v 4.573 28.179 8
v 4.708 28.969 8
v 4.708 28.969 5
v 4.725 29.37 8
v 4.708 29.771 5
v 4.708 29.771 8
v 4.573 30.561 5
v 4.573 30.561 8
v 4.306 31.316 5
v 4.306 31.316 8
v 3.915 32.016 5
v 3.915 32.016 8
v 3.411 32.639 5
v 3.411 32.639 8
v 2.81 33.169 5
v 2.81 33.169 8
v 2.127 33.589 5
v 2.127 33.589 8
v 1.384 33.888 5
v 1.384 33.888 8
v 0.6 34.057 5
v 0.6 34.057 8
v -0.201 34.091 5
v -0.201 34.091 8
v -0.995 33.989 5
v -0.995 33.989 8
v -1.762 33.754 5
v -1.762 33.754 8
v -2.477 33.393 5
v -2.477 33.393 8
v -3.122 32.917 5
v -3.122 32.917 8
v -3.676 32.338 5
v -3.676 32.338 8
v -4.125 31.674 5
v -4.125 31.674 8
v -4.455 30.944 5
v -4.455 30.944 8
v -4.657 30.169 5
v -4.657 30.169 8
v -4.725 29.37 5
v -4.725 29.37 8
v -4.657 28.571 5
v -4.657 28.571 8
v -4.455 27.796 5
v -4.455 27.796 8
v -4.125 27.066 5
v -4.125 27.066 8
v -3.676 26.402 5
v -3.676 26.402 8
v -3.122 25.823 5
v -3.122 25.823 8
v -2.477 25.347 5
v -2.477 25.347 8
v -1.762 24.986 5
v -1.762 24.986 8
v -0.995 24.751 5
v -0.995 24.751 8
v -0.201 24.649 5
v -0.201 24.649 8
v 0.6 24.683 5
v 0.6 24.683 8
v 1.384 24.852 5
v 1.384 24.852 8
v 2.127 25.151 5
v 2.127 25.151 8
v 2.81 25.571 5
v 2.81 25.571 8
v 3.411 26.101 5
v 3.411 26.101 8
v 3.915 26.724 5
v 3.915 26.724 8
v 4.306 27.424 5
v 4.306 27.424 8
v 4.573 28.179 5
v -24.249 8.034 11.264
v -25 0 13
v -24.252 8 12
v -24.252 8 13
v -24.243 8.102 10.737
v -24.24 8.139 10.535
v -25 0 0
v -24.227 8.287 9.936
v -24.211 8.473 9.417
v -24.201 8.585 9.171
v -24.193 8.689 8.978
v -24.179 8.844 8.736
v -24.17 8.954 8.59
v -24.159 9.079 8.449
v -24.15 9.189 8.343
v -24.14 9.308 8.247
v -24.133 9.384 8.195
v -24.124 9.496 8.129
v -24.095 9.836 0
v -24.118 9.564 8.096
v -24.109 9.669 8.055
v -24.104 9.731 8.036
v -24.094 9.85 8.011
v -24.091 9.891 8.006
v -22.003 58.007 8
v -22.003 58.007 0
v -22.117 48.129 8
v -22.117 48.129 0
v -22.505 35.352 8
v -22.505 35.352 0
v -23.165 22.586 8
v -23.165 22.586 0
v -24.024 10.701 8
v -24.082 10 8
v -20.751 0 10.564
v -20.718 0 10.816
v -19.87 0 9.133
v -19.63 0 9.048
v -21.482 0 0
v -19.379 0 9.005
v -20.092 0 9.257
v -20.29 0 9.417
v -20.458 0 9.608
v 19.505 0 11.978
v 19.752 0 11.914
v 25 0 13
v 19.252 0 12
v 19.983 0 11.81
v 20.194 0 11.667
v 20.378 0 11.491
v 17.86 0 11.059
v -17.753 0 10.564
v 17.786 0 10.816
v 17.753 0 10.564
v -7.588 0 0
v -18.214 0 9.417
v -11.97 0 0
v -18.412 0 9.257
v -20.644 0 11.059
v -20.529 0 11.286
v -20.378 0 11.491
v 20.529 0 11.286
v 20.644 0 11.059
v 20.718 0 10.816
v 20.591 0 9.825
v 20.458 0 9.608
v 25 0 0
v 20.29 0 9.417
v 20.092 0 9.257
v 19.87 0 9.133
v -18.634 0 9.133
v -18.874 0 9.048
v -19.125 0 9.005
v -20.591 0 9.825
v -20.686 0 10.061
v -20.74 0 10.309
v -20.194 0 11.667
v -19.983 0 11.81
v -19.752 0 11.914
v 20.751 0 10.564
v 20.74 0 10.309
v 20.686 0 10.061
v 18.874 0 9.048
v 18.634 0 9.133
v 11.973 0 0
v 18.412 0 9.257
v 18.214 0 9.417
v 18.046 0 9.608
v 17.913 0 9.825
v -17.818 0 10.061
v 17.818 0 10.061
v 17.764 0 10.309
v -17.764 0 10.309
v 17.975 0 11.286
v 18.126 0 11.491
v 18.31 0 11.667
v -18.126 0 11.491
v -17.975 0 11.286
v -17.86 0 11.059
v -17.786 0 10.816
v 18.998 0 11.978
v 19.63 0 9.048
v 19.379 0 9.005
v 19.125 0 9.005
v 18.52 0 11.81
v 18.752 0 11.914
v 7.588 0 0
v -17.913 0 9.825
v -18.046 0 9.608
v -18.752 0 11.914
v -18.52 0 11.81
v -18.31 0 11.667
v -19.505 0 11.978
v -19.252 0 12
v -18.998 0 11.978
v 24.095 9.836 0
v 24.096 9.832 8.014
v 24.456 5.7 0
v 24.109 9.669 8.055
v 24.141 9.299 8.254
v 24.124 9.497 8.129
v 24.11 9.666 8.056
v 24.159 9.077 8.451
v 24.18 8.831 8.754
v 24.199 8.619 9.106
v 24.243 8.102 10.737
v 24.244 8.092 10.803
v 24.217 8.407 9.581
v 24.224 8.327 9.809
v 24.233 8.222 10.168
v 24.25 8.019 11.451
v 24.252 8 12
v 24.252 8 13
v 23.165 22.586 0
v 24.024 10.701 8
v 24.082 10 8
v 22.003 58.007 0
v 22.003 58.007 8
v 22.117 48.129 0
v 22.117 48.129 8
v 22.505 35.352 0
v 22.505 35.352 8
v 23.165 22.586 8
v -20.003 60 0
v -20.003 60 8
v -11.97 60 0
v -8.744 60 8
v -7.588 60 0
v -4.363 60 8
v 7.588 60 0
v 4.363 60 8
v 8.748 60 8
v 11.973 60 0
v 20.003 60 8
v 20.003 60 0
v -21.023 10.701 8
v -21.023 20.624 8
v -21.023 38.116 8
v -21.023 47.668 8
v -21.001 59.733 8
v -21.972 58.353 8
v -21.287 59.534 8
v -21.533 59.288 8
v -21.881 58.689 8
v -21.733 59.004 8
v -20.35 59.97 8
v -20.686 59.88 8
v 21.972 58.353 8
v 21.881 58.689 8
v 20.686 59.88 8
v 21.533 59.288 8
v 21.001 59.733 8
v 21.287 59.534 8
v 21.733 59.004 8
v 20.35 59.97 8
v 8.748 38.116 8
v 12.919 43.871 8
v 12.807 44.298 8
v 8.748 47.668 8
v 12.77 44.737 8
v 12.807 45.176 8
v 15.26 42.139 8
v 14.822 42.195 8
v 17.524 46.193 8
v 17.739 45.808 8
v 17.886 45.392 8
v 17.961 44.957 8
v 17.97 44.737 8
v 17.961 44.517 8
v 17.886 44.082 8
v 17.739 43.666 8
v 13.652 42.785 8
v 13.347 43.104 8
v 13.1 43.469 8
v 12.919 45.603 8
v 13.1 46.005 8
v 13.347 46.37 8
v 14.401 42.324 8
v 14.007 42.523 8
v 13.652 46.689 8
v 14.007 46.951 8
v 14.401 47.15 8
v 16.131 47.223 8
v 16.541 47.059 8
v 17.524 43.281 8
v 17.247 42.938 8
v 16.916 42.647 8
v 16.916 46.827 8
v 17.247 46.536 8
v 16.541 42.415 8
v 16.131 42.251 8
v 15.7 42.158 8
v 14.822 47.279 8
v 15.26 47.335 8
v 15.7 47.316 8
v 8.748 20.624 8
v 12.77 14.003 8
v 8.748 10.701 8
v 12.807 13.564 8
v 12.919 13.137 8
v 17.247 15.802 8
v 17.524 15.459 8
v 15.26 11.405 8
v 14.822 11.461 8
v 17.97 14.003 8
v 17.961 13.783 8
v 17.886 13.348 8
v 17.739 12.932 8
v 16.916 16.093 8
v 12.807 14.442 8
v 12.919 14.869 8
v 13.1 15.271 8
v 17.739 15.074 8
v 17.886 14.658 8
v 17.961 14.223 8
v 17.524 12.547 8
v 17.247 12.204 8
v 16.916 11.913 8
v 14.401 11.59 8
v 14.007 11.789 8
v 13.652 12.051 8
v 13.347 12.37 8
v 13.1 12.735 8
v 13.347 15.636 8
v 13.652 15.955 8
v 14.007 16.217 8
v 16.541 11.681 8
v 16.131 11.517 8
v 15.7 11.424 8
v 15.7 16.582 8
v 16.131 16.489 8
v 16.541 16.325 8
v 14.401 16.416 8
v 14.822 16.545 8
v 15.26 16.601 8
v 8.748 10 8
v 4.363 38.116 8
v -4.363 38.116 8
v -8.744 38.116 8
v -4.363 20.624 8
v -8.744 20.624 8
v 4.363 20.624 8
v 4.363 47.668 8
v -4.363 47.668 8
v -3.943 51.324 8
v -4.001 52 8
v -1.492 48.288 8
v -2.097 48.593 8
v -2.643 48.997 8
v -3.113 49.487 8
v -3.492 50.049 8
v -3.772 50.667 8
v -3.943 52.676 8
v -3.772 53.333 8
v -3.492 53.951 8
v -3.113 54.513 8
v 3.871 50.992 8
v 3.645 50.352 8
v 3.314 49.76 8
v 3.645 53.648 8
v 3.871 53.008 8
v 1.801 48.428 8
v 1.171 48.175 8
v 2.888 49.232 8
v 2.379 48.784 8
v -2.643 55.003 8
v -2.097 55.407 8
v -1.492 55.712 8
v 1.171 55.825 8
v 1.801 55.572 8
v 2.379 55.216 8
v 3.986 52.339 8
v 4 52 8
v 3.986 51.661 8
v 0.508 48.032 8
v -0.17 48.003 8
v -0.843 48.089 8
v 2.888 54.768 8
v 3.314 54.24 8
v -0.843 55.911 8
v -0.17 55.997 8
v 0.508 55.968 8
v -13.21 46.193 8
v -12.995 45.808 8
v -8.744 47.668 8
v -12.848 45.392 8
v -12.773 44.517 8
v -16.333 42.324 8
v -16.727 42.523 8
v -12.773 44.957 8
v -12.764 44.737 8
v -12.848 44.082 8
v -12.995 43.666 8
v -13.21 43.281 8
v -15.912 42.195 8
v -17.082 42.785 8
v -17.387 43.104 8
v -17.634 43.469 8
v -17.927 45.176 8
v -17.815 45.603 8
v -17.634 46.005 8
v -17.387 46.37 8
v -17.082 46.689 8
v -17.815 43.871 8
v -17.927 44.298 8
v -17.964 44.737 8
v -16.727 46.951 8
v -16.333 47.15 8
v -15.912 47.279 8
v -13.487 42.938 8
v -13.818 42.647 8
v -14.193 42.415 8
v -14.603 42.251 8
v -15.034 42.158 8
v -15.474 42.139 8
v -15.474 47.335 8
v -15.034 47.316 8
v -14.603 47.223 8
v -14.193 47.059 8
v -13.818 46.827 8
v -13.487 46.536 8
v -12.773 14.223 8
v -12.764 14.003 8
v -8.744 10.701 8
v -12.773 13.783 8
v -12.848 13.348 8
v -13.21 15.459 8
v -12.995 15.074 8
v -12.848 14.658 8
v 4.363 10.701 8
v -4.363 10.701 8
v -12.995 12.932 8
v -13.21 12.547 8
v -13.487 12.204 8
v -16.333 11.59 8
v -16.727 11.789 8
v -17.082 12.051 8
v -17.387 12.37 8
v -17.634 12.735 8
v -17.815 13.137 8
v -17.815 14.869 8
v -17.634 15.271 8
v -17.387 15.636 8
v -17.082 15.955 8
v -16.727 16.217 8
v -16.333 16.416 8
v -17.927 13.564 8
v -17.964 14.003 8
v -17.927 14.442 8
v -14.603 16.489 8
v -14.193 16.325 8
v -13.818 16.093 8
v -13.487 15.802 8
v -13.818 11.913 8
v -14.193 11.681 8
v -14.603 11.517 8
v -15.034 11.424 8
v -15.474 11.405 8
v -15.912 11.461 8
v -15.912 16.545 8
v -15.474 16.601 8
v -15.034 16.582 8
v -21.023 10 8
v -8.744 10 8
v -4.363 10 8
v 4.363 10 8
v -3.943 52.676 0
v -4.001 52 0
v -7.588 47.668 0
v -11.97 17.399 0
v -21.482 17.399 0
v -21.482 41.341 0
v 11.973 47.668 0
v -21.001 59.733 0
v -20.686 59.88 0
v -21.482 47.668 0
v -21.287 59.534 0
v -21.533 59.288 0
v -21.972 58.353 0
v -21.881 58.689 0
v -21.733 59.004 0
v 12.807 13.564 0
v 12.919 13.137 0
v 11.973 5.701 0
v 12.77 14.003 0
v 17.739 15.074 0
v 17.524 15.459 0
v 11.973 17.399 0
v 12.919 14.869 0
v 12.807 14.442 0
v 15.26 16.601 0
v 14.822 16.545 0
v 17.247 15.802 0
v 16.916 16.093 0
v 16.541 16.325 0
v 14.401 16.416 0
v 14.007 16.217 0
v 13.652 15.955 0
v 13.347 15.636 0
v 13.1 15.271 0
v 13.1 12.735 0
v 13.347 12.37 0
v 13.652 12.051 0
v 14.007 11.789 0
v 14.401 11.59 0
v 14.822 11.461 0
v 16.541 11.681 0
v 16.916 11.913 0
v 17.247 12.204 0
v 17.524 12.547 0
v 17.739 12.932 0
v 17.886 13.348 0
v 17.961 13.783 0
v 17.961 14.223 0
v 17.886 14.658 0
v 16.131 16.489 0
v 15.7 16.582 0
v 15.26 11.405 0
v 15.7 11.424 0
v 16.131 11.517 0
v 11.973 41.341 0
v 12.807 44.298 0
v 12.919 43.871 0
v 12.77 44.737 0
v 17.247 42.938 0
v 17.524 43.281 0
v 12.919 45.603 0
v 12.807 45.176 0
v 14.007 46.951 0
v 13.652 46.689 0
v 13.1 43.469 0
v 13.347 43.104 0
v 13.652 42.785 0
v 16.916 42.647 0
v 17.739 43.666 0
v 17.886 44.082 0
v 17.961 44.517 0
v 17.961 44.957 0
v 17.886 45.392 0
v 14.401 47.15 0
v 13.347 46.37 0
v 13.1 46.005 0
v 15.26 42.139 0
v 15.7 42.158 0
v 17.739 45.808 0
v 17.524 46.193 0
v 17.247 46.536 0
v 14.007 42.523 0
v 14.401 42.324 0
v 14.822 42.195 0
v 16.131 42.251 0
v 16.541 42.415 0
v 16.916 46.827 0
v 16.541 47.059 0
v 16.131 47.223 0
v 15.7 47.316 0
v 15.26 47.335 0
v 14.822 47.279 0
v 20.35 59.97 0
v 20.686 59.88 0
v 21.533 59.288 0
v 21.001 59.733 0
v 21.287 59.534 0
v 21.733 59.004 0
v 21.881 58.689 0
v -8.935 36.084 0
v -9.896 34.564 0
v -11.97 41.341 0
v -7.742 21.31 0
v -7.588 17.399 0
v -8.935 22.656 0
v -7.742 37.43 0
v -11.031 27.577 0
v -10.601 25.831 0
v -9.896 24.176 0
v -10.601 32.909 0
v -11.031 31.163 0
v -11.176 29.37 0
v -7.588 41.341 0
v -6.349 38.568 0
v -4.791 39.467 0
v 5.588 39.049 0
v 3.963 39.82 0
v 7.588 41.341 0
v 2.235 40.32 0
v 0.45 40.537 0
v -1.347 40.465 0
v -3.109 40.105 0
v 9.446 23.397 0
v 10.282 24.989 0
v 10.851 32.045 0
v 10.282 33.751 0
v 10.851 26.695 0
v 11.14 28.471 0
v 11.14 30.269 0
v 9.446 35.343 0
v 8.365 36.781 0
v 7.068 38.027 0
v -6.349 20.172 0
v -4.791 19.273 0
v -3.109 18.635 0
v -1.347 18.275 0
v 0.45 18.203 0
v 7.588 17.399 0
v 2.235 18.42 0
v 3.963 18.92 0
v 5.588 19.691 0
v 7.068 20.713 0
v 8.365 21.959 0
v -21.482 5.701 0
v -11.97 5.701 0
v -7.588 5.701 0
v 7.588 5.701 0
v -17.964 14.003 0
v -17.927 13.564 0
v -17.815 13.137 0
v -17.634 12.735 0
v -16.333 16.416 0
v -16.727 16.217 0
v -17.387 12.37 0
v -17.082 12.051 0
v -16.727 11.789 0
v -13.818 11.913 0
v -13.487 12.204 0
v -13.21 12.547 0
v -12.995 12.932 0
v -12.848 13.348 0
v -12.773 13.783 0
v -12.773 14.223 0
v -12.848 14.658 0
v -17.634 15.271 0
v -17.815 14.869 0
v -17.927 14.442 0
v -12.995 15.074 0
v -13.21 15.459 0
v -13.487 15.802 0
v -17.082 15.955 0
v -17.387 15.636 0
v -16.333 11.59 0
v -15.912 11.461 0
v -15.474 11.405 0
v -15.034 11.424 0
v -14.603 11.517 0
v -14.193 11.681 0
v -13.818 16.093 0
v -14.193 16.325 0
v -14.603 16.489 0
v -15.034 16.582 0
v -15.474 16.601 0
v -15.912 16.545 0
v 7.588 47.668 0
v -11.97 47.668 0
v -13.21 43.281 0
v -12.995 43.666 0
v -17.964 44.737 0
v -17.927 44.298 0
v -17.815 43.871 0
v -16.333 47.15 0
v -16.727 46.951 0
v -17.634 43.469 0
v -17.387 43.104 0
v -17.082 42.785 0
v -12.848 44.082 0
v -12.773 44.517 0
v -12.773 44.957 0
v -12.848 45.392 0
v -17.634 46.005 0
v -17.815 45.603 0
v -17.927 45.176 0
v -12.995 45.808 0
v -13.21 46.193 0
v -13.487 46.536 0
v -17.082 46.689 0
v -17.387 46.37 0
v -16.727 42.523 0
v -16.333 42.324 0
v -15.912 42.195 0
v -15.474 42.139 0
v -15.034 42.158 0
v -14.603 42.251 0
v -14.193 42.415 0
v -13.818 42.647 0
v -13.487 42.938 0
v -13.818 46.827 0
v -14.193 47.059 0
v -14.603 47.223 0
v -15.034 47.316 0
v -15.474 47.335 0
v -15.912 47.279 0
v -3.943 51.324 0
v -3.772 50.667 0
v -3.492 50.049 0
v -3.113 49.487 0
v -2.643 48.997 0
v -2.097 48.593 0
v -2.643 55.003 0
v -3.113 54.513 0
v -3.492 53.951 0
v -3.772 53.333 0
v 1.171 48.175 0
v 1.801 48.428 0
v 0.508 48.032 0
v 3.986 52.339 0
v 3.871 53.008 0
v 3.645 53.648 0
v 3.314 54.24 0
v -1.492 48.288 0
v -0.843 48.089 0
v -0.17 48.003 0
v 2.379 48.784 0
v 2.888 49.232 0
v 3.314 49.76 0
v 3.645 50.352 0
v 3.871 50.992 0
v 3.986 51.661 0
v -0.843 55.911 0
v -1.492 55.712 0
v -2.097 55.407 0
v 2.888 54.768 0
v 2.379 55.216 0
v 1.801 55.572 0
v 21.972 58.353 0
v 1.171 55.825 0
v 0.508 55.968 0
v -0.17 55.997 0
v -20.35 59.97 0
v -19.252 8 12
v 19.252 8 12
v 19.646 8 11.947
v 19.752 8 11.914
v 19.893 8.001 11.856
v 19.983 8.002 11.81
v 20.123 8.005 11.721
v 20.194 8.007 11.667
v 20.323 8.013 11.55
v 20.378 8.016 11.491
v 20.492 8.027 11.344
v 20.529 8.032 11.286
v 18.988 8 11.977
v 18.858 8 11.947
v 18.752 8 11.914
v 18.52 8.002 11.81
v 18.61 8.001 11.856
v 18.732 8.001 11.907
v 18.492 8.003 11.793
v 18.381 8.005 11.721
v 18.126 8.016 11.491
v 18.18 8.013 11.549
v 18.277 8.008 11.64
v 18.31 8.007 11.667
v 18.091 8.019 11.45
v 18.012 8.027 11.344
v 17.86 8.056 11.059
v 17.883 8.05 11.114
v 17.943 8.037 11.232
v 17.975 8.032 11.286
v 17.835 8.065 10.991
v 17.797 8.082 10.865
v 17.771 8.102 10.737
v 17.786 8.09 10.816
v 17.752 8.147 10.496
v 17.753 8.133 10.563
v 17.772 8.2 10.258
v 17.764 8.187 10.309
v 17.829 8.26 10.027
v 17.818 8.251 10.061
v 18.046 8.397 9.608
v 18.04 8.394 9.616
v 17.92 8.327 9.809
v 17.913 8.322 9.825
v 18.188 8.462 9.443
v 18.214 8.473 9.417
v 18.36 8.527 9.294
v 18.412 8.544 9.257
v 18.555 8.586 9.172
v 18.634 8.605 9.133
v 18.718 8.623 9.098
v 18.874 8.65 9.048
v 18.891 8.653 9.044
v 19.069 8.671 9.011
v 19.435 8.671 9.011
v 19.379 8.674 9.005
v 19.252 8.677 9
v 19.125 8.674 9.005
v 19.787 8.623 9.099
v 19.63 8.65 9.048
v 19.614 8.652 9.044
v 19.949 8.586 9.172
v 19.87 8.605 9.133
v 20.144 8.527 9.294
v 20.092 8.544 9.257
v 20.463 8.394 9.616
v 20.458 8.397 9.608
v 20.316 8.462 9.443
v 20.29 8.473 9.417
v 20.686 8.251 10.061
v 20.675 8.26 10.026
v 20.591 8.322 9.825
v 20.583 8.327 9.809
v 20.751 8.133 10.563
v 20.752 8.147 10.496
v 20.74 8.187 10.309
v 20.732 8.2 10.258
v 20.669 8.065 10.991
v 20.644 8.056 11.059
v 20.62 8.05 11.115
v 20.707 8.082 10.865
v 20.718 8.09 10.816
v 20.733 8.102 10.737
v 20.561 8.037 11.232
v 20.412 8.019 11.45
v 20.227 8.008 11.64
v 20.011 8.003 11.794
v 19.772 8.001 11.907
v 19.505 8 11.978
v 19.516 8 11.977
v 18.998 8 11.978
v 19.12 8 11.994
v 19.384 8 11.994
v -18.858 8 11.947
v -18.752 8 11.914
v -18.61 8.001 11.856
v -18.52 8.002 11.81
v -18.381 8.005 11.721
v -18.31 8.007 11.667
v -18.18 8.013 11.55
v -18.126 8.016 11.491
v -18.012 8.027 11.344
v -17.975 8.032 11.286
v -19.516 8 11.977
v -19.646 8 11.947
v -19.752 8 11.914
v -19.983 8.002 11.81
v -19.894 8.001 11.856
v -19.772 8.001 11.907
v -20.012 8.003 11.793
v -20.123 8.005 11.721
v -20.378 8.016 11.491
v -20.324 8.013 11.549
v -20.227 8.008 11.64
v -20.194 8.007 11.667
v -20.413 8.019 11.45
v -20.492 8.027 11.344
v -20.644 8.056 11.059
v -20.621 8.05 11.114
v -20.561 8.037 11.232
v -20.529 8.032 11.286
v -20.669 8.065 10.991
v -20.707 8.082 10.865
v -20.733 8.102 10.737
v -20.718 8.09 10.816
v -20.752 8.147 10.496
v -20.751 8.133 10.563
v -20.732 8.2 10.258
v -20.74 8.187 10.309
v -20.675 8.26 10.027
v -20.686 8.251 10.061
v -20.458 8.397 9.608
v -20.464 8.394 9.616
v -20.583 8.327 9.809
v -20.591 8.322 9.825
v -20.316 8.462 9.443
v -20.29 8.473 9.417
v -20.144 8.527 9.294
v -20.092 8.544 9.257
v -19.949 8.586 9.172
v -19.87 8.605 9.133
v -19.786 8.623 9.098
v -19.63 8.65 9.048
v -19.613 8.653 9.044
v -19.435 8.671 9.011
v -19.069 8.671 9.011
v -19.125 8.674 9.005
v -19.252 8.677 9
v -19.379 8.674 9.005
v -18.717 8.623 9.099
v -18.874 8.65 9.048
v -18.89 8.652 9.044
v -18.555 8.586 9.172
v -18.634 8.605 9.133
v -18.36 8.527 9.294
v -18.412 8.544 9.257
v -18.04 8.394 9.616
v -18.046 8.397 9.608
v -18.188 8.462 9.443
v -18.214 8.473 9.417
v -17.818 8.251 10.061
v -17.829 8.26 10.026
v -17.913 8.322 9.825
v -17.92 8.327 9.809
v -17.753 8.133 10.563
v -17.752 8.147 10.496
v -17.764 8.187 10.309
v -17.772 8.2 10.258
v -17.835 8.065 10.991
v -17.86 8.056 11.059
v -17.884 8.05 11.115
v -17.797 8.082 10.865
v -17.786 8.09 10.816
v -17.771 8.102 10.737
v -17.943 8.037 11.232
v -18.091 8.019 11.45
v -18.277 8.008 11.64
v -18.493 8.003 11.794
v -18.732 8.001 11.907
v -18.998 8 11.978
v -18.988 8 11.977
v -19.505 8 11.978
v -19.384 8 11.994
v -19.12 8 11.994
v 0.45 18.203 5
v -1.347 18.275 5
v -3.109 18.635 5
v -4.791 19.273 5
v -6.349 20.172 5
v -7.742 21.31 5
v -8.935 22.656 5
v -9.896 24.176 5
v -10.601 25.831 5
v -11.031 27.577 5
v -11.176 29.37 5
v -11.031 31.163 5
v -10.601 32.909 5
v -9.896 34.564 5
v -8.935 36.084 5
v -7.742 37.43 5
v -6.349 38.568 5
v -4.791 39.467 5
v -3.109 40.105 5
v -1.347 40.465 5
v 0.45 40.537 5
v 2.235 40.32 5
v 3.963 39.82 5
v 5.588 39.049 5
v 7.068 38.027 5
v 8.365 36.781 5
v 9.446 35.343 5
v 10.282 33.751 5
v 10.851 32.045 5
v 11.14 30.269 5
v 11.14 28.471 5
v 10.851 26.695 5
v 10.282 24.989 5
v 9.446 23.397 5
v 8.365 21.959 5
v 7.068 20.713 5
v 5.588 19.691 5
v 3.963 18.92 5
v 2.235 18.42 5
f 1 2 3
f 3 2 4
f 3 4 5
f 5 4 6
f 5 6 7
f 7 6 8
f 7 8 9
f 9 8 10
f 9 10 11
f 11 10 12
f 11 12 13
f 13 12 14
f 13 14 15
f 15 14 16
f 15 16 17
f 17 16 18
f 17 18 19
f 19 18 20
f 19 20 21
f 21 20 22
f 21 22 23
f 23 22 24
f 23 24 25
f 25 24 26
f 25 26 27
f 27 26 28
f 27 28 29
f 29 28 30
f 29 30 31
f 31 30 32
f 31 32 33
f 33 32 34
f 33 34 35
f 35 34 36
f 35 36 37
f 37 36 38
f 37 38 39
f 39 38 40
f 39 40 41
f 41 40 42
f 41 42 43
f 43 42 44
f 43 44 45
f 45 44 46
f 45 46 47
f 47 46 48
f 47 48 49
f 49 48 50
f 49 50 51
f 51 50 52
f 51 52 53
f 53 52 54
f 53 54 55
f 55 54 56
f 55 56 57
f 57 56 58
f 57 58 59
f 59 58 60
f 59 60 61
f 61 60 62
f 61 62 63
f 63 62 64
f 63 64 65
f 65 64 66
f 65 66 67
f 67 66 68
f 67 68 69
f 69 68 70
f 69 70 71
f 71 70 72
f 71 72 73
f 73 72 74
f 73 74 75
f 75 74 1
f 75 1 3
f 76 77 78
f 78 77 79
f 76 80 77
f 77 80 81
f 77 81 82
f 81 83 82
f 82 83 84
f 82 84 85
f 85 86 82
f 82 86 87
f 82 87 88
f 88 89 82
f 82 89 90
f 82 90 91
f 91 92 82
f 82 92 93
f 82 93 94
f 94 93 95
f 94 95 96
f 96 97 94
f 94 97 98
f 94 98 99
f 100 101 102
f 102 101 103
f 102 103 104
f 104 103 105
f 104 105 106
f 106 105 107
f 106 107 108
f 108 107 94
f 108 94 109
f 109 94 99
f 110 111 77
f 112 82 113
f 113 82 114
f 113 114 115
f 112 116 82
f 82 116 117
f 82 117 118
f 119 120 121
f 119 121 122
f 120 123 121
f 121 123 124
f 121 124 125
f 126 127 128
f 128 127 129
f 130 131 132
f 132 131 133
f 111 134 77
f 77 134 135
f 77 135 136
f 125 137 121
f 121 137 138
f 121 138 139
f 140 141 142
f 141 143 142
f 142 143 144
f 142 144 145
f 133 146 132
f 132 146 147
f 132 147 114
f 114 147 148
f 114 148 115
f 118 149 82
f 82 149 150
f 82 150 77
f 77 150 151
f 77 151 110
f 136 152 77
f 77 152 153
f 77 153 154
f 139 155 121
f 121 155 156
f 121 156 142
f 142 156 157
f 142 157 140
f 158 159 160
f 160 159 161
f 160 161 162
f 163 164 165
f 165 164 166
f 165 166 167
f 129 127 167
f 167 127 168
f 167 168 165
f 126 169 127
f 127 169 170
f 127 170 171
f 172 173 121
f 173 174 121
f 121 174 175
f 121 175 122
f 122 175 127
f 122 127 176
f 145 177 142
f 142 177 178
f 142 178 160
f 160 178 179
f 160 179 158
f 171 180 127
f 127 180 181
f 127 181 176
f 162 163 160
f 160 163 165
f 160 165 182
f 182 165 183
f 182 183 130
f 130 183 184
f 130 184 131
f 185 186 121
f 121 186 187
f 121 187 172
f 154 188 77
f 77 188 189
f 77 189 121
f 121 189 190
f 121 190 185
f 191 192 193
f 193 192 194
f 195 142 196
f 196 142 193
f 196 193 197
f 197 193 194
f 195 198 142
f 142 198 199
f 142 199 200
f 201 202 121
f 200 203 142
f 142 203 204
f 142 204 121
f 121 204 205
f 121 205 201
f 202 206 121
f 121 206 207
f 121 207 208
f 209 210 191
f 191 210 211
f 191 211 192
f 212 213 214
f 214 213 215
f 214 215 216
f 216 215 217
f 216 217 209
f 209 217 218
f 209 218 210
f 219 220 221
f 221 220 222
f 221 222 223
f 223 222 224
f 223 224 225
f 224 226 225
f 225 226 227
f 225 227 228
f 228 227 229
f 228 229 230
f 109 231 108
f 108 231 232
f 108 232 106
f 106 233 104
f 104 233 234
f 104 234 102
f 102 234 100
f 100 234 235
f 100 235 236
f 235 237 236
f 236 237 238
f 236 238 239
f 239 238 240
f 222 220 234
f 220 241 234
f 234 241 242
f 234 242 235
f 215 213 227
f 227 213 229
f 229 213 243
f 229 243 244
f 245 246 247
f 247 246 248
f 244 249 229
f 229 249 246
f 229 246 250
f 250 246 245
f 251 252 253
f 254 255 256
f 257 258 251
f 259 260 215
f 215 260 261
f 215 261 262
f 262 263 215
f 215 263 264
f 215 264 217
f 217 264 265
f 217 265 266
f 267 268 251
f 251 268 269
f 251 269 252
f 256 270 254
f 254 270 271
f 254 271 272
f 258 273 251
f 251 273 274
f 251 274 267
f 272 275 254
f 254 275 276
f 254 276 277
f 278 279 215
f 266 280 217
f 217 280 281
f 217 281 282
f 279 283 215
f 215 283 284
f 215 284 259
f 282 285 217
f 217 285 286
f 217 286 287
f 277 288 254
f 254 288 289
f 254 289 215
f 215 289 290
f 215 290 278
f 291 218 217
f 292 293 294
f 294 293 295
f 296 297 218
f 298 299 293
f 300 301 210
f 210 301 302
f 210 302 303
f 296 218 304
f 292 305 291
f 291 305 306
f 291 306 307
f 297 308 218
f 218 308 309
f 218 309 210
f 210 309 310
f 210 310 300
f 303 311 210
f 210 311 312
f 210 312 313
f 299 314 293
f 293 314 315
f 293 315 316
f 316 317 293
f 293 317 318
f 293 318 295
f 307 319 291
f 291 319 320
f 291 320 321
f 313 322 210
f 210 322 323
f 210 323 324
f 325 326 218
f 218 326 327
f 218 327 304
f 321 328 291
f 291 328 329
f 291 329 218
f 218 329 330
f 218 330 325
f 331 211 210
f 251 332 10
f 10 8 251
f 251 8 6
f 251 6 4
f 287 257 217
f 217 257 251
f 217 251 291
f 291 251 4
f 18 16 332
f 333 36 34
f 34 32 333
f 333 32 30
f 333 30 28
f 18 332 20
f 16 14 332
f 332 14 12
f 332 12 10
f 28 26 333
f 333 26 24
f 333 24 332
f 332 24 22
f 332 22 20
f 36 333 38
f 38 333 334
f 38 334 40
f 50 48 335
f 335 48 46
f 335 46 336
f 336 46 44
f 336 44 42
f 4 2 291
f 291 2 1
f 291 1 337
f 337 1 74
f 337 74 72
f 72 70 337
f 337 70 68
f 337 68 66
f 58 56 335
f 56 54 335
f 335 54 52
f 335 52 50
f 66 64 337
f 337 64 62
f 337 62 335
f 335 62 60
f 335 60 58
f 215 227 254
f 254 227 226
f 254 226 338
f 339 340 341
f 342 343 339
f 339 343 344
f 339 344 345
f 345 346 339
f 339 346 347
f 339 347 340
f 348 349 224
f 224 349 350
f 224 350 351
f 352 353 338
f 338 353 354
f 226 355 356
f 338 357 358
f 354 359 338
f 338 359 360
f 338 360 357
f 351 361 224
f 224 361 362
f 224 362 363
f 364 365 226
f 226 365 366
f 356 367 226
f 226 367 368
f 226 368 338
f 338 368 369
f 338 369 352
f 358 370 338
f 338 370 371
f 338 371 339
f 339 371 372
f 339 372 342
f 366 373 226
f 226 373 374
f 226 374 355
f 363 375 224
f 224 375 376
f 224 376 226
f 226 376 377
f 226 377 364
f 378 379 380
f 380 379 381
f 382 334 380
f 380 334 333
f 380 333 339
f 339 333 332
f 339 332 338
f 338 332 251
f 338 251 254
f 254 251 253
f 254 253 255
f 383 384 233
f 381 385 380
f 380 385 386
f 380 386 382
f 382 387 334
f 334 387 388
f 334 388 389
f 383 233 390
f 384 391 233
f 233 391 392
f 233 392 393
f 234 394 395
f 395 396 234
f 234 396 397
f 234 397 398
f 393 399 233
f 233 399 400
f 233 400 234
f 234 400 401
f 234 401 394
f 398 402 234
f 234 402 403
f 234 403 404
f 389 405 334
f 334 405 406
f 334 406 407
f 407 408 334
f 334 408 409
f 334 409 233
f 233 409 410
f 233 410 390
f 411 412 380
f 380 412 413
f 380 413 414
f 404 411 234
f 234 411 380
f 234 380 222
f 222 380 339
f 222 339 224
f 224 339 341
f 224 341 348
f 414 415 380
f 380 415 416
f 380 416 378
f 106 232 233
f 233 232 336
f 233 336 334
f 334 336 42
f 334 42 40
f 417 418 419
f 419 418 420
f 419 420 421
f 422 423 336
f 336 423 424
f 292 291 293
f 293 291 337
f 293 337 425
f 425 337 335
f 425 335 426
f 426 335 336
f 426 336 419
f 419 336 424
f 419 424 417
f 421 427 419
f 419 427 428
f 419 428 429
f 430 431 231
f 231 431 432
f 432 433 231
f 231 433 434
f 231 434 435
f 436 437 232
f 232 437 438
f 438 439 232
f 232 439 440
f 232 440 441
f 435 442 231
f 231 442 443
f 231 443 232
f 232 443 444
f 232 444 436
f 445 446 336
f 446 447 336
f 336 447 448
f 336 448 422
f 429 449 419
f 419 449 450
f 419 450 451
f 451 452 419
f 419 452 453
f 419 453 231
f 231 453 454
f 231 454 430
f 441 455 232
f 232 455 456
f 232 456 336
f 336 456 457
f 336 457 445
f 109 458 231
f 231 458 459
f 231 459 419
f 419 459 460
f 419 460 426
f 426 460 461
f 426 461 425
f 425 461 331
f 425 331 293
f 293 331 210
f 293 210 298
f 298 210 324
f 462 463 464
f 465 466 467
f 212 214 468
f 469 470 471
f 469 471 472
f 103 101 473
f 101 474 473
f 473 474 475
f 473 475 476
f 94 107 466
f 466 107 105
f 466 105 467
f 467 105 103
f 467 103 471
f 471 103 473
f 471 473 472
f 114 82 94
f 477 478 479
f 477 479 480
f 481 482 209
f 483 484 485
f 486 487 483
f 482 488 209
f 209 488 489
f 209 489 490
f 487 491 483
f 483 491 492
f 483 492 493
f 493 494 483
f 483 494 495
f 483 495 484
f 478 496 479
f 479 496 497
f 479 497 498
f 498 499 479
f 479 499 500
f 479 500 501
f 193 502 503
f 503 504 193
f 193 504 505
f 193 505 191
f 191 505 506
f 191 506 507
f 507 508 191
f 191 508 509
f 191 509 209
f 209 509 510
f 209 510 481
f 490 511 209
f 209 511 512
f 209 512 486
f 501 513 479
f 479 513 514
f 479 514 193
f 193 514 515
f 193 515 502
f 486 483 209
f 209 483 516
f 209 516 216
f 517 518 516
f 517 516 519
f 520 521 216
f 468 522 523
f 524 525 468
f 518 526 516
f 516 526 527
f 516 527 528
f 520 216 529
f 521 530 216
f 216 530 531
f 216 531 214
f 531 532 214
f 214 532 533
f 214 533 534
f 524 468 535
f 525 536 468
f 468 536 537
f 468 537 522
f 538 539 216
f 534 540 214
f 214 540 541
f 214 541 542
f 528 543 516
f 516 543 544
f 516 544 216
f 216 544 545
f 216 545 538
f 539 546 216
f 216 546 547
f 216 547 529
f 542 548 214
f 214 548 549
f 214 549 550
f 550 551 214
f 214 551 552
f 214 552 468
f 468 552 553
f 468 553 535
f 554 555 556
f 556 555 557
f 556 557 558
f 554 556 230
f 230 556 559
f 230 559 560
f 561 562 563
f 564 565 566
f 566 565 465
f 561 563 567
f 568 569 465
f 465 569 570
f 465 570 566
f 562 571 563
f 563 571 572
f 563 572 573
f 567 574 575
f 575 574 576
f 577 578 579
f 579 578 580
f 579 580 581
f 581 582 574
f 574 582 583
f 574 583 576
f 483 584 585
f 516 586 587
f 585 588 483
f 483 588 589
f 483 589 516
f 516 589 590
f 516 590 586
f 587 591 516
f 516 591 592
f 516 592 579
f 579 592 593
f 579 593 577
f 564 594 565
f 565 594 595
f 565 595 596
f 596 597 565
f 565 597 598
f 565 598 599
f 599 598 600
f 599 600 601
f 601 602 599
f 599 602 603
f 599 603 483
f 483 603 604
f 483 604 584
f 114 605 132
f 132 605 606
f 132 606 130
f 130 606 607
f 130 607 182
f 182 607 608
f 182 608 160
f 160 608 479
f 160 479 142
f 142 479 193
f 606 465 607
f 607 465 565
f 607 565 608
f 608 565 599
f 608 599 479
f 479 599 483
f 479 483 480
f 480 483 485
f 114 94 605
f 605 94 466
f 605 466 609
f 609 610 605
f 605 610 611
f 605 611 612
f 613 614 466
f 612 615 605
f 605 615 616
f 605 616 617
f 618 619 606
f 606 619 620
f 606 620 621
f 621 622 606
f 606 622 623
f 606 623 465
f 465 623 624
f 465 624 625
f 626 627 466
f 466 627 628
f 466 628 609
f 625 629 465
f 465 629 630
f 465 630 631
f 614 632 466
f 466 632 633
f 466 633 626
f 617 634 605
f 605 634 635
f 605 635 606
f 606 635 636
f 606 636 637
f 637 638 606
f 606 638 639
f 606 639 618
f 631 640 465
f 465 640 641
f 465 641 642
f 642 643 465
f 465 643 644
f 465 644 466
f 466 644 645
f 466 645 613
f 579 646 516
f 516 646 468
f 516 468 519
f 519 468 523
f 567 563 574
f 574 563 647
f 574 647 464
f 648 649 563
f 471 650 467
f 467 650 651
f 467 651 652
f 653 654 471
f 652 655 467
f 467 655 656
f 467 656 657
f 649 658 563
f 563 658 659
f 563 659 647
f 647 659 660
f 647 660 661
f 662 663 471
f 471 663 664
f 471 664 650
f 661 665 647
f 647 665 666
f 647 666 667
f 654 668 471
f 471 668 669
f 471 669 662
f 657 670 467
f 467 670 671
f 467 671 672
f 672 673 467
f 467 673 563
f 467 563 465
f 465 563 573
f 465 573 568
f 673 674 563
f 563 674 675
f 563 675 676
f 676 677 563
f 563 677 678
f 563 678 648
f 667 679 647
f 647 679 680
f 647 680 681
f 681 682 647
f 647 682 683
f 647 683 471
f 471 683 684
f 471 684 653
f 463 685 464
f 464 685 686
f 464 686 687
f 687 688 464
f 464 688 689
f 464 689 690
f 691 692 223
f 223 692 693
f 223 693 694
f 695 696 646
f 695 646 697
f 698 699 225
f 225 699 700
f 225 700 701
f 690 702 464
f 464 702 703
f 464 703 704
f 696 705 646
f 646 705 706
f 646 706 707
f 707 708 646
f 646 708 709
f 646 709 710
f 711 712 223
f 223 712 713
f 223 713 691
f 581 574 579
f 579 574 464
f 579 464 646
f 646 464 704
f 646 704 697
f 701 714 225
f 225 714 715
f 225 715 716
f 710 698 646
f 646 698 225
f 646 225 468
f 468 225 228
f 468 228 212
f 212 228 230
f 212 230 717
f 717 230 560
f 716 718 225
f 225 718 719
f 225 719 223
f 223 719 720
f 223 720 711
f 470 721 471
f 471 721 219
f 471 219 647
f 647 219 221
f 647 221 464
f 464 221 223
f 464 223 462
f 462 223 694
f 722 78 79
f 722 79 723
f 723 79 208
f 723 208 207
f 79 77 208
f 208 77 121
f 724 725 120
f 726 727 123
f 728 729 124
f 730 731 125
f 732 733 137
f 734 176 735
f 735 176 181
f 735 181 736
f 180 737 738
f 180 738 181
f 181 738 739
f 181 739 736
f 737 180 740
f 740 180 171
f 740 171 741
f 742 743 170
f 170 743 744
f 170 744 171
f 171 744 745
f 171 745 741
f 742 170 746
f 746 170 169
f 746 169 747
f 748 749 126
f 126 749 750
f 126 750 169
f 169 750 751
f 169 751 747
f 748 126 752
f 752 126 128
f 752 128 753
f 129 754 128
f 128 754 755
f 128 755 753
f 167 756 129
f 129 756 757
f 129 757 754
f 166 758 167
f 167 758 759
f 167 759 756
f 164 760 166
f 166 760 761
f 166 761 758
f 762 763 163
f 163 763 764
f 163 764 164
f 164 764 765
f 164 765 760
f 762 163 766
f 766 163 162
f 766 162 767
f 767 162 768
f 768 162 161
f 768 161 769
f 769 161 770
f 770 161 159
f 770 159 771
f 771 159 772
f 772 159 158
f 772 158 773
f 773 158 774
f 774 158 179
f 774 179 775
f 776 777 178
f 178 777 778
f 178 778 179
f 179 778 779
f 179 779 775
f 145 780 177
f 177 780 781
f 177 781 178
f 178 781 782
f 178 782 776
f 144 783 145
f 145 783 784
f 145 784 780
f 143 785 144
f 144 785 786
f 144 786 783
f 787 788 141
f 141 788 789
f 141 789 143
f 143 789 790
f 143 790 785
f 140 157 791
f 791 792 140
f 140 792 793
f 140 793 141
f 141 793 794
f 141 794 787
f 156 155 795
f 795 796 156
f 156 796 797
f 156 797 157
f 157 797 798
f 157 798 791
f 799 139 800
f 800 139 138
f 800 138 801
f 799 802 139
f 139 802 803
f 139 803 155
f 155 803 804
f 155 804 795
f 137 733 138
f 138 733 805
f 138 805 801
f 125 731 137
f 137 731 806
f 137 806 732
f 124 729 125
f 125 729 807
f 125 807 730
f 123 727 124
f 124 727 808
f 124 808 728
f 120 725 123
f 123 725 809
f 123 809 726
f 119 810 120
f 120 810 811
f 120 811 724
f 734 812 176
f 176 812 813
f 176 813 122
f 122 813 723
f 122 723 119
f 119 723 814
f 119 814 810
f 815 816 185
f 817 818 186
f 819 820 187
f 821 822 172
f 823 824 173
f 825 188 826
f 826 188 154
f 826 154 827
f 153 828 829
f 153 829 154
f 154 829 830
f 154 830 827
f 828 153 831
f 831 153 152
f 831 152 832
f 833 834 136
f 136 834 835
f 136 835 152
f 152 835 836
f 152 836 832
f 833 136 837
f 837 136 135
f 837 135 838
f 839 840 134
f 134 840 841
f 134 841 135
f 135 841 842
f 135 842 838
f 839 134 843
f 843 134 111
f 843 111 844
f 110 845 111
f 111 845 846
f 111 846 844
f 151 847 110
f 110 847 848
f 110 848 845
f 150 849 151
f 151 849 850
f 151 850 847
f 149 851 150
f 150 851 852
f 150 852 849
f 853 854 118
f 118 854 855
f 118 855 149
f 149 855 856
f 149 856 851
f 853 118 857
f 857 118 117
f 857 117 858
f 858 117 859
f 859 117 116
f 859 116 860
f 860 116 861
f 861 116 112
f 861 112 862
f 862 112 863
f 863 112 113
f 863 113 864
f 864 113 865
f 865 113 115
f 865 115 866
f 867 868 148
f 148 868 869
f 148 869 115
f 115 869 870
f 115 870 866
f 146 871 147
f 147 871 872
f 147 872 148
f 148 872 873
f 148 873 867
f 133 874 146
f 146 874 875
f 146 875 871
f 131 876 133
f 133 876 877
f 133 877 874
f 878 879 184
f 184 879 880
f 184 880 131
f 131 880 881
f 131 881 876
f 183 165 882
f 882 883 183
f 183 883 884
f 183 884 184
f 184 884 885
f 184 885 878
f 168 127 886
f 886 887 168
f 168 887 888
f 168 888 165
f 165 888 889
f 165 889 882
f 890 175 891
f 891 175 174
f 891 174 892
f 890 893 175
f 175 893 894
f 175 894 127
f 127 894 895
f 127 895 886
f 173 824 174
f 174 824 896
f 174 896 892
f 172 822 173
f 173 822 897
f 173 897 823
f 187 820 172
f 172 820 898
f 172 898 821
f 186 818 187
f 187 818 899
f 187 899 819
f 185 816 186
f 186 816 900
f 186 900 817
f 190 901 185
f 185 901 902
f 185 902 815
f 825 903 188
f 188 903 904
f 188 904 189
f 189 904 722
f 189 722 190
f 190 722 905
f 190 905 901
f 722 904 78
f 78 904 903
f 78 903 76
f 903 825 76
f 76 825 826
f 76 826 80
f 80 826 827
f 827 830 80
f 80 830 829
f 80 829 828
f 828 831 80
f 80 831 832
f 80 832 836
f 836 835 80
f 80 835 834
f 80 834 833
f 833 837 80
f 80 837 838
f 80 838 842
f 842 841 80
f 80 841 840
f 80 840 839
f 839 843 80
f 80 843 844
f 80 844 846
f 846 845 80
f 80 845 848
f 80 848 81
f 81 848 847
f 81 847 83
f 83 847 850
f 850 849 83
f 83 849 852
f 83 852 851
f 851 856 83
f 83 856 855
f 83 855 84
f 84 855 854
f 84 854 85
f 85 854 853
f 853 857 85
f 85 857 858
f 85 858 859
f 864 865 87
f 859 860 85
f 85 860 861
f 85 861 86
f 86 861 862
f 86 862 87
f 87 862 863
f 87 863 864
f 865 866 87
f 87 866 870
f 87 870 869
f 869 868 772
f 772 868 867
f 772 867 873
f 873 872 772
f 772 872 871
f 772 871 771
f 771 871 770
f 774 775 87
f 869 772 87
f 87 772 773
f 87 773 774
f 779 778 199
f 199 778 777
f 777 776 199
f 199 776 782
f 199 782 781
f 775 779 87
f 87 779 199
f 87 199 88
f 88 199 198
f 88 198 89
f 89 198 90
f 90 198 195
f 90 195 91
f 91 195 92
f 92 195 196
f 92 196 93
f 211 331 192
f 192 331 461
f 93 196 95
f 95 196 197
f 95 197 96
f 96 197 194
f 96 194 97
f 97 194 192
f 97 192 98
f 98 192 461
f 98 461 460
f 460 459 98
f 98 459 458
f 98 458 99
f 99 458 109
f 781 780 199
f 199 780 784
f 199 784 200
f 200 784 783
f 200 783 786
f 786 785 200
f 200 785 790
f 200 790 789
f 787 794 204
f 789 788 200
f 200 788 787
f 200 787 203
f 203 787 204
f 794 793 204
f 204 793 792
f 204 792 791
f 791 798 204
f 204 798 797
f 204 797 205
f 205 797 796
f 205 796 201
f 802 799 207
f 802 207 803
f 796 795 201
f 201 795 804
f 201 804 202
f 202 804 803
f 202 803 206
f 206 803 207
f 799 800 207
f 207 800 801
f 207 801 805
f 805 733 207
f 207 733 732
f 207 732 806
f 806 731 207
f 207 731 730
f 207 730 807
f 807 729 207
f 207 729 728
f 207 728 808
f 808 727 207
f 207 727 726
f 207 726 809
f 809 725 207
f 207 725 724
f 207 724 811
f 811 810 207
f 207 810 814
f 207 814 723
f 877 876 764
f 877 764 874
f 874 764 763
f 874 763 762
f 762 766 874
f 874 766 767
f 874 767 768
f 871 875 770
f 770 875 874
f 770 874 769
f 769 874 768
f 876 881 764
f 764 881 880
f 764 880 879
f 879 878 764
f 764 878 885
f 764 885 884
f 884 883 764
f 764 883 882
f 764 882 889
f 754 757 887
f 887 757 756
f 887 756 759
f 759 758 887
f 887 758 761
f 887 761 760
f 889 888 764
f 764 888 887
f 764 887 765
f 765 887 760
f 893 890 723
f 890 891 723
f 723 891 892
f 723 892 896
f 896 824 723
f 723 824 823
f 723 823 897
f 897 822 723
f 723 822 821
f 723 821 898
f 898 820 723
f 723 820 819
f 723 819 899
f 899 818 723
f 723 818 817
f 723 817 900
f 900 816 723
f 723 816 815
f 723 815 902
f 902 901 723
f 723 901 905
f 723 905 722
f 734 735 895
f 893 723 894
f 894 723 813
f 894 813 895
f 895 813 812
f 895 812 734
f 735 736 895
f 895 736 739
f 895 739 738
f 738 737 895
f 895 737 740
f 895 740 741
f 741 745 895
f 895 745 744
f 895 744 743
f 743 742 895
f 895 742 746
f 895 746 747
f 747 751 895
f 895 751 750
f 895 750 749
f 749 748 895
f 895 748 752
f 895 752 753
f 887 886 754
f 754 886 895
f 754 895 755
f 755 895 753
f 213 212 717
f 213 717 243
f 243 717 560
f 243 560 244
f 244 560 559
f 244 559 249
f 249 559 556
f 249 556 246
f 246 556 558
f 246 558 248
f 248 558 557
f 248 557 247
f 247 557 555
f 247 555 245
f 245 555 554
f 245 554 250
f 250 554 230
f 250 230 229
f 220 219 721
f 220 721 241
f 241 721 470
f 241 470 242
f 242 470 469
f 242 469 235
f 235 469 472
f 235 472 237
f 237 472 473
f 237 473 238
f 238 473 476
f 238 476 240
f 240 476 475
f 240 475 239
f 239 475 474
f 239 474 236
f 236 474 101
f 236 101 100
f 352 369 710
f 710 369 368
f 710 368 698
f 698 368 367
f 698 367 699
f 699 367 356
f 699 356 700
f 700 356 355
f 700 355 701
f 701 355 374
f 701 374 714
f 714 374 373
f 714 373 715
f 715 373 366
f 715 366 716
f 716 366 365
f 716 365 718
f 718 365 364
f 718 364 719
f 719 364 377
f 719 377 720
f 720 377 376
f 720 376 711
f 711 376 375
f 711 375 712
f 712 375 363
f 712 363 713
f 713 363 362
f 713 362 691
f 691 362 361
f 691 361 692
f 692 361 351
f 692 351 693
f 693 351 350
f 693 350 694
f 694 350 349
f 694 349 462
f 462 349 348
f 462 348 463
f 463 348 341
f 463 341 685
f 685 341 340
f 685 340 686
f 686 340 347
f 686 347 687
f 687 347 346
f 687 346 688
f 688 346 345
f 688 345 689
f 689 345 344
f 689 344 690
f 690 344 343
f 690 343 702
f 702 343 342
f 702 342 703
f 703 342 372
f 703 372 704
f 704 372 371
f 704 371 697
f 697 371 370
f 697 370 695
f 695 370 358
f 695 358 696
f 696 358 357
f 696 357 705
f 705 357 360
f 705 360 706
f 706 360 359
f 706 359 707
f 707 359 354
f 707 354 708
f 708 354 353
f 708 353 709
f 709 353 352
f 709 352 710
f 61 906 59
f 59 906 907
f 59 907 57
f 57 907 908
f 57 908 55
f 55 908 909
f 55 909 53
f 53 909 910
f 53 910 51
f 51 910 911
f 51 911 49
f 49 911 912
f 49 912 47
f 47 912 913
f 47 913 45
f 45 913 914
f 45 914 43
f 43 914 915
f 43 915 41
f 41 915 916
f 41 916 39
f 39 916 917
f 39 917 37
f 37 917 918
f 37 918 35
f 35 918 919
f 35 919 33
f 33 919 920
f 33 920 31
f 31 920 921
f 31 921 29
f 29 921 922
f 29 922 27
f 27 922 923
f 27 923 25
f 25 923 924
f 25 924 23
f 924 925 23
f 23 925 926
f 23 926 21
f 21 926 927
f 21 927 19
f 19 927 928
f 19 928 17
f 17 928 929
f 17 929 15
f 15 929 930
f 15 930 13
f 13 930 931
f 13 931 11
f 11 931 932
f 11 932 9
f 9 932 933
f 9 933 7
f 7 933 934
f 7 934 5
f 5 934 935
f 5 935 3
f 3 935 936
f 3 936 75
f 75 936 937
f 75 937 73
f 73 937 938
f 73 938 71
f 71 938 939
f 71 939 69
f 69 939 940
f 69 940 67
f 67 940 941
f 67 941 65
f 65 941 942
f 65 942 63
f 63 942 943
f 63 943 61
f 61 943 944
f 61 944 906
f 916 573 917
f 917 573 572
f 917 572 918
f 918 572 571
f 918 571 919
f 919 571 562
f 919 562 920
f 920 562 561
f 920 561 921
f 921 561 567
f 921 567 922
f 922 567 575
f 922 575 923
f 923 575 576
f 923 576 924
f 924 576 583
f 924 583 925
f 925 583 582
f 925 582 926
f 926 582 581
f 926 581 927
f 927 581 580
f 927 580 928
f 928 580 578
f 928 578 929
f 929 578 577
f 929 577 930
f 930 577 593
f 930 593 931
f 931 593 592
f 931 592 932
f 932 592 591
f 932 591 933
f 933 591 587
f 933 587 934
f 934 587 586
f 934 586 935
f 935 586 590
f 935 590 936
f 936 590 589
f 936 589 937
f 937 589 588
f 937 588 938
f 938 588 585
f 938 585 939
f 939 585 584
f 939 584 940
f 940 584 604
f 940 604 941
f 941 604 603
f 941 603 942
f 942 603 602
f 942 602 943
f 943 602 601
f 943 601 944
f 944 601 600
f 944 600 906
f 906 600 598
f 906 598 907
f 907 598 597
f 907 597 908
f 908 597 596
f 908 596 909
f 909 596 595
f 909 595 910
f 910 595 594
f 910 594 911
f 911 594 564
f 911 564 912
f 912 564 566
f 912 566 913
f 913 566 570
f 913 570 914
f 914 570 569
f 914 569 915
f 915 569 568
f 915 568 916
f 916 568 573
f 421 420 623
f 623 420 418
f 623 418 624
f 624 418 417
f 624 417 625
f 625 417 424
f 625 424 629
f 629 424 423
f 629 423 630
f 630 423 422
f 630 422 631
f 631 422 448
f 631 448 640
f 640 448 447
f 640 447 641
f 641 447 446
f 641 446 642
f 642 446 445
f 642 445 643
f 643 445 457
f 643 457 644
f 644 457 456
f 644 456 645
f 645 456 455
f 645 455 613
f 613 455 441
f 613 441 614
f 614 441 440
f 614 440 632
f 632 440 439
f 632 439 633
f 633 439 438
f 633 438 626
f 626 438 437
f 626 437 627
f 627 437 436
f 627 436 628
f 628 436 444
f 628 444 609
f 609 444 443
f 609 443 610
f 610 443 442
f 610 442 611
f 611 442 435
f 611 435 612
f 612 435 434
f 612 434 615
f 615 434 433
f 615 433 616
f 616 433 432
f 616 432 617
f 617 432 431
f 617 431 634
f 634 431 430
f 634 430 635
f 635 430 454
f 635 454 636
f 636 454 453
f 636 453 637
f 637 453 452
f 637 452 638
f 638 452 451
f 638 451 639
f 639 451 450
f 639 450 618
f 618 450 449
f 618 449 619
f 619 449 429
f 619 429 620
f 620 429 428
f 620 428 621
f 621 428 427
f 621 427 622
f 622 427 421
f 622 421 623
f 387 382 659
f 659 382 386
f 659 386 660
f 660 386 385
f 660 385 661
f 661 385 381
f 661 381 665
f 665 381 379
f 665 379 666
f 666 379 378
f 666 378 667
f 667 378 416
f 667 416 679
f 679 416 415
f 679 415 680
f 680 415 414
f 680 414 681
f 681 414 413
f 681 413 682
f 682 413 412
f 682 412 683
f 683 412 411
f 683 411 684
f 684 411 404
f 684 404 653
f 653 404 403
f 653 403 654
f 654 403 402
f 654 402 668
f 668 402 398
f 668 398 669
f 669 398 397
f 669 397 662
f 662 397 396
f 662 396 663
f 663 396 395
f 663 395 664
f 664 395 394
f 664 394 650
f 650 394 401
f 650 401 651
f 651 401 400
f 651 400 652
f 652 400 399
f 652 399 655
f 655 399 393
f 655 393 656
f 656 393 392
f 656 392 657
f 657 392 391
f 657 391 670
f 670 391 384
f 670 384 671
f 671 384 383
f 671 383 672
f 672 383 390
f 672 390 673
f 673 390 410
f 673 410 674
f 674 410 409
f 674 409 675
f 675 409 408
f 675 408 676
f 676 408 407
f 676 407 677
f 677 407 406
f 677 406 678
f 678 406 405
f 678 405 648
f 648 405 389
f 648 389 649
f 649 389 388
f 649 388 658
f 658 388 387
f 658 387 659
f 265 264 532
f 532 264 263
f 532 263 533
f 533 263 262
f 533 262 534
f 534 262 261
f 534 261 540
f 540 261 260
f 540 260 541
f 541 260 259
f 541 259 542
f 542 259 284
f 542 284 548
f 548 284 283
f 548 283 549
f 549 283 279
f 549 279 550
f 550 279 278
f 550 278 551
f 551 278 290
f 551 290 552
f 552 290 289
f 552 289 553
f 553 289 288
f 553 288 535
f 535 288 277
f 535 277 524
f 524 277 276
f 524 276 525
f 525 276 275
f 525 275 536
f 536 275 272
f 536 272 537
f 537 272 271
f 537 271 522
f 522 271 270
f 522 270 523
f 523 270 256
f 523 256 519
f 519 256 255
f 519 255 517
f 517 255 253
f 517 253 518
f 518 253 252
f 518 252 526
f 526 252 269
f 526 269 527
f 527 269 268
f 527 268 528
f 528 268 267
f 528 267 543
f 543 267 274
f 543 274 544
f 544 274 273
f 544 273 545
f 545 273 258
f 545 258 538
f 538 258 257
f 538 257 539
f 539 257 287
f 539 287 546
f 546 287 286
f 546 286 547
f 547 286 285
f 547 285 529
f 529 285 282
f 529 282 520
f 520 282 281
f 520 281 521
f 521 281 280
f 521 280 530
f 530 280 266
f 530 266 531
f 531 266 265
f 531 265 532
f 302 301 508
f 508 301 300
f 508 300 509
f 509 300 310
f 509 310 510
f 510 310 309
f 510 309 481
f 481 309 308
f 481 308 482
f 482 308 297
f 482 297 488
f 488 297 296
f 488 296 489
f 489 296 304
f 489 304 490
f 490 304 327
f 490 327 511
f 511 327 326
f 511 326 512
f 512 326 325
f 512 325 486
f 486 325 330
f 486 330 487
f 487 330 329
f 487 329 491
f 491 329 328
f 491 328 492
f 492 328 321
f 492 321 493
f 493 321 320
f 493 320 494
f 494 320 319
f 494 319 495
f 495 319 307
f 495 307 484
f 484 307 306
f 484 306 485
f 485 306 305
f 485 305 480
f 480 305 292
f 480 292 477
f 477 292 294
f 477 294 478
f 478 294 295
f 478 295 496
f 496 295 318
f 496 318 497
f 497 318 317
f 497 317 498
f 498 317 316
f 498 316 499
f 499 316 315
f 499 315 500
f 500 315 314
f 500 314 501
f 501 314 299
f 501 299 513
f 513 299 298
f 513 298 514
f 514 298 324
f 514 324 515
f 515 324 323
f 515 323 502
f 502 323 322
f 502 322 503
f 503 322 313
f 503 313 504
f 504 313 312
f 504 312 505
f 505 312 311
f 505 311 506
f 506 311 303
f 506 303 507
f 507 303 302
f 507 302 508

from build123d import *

# Parameters (mm, degrees)
BOSS_EXTRUDE1_DEPTH  = 8
BOSS_EXTRUDE2_DEPTH  = 5
SKETCH3_R            = 1.5
CUT_EXTRUDE_DEPTH    = 8
FILLET1_SIZE         = 2
FILLET1_SIZE_2       = 4
FILLET2_R            = 2
SKETCH4_R            = 4.0005
SKETCH4_R_2          = 4.725
M4_H6_T_INSERT_DEPTH = 8
SKETCH13_R           = 11.176
CUT_EXTRUDE2_DEPTH   = 5
SKETCH14_R           = 2.6
CUT_EXTRUDE3_DEPTH   = 67.287253734


with BuildPart() as part:
    # Sketch1 → Boss-Extrude1 (new body)
    with BuildSketch(Plane.XY):
        with BuildLine():
            Line((22, 60), (-22, 60))
            ThreePointArc((-22, 60), (-22.750468165, 29.962523408), (-25, 0))
            Line((-25, 0), (25, 0))
            ThreePointArc((25, 0), (22.750468165, 29.962523408), (22, 60))
        make_face()
    extrude(amount=BOSS_EXTRUDE1_DEPTH)

    # Sketch2 → Boss-Extrude2 (add)
    with BuildSketch(Plane.XY.offset(8)):
        with BuildLine():
            Line((-25, 0), (25, 0))
            ThreePointArc((25, 0), (24.612606496, 3.998750886), (24.251929498, 8))
            Line((24.251929498, 8), (-24.251929498, 8))
            ThreePointArc((-24.251929498, 8), (-24.612606496, 3.998750886), (-25, 0))
        make_face()
    extrude(amount=BOSS_EXTRUDE2_DEPTH)

    # Sketch3 → Cut-Extrude (cut)
    with BuildSketch(Plane(origin=(0, 8, 0), x_dir=(1, 0, 0), z_dir=(0, 1, 0))):
        with Locations(Location((-19.251929498, -10.5, 0), (0, 0, 270))):
            Circle(SKETCH3_R)
        with Locations(Location((19.251929498, -10.5, 0), (0, 0, 270))):
            Circle(SKETCH3_R)
    extrude(amount=-CUT_EXTRUDE_DEPTH, mode=Mode.SUBTRACT)

    # Fillet1
    # an asymmetric fillet: 4, 2 mm, written as the material it adds along each edge
    with BuildSketch(Plane(origin=(34.251929498, 8, 8), x_dir=(0, 1, 0), z_dir=(-1, 0, 0))) as fillet1_piece_1_section:
        with BuildLine():
            Bezier((FILLET1_SIZE, 0), (0, 0), (0, -FILLET1_SIZE_2), weights=[1, 0.707106781, 1])
            Line((0, -FILLET1_SIZE_2), (-0.08, -4))
            Line((-0.08, -4), (-0.08, 0.08))
            Line((-0.08, 0.08), (2, 0.08))
            Line((2, 0.08), (FILLET1_SIZE, 0))
        make_face()
    fillet1_piece_1 = extrude(amount=68.503858997, mode=Mode.PRIVATE)
    fillet1_piece_1 = fillet1_piece_1 - Plane(origin=(-623.5, 60, 8.94437244), x_dir=(1, 0, 0), z_dir=(0, 0, -1)) * Cylinder(601.5, 154, mode=Mode.PRIVATE)
    fillet1_piece_1 = fillet1_piece_1 - Plane(origin=(623.5, 60, 8.94437244), x_dir=(-0.9950124688279272, -0.09975062344142714, 0), z_dir=(0, 0, -1)) * Cylinder(601.5, 154, mode=Mode.PRIVATE)
    fillet1_piece_1 = fillet1_piece_1 - Plane(origin=(-19.251929498, 8.425610742, 10.5), x_dir=(0, 0, 1), z_dir=(0, 1, 0)) * Cylinder(1.5, 154, mode=Mode.PRIVATE)
    fillet1_piece_1 = fillet1_piece_1 - Plane(origin=(19.251929498, 8.425610742, 10.5), x_dir=(0, 0, 1), z_dir=(0, 1, 0)) * Cylinder(1.5, 154, mode=Mode.PRIVATE)
    add(fillet1_piece_1)

    # Fillet2
    fillet2_edges = [part.edges().sort_by_distance(p)[0] for p in [
        (22, 60, 4),
        (-22, 60, 4),
    ]]
    fillet(fillet2_edges, radius=FILLET2_R)

    # Sketch4 → M4*H6 T-Insert (cut)
    with BuildSketch(Plane(origin=(0, 0, 0), x_dir=(-1, 0, 0), z_dir=(0, 0, -1))):
        with Locations((0, 52)):
            Circle(SKETCH4_R)
        with Locations((0, 29.37)):
            Circle(SKETCH4_R_2)
    extrude(amount=-M4_H6_T_INSERT_DEPTH, mode=Mode.SUBTRACT)

    # Sketch13 → Cut-Extrude2 (cut)
    with BuildSketch(Plane(origin=(0, 0, 0), x_dir=(-1, 0, 0), z_dir=(0, 0, -1))):
        with Locations((0, 29.37)):
            Circle(SKETCH13_R)
    extrude(amount=-CUT_EXTRUDE2_DEPTH, mode=Mode.SUBTRACT)

    # Sketch14 → Cut-Extrude3 (cut, through all)
    with BuildSketch(Plane(origin=(0, 0, 0), x_dir=(-1, 0, 0), z_dir=(0, 0, -1))):
        with Locations((15.364, 14.003)):
            Circle(SKETCH14_R)
        with Locations((15.364, 44.737)):
            Circle(SKETCH14_R)
        with Locations((-15.37, 44.737)):
            Circle(SKETCH14_R)
        with Locations((-15.37, 14.003)):
            Circle(SKETCH14_R)
    extrude(amount=-CUT_EXTRUDE3_DEPTH, mode=Mode.SUBTRACT)


solid = part.part
